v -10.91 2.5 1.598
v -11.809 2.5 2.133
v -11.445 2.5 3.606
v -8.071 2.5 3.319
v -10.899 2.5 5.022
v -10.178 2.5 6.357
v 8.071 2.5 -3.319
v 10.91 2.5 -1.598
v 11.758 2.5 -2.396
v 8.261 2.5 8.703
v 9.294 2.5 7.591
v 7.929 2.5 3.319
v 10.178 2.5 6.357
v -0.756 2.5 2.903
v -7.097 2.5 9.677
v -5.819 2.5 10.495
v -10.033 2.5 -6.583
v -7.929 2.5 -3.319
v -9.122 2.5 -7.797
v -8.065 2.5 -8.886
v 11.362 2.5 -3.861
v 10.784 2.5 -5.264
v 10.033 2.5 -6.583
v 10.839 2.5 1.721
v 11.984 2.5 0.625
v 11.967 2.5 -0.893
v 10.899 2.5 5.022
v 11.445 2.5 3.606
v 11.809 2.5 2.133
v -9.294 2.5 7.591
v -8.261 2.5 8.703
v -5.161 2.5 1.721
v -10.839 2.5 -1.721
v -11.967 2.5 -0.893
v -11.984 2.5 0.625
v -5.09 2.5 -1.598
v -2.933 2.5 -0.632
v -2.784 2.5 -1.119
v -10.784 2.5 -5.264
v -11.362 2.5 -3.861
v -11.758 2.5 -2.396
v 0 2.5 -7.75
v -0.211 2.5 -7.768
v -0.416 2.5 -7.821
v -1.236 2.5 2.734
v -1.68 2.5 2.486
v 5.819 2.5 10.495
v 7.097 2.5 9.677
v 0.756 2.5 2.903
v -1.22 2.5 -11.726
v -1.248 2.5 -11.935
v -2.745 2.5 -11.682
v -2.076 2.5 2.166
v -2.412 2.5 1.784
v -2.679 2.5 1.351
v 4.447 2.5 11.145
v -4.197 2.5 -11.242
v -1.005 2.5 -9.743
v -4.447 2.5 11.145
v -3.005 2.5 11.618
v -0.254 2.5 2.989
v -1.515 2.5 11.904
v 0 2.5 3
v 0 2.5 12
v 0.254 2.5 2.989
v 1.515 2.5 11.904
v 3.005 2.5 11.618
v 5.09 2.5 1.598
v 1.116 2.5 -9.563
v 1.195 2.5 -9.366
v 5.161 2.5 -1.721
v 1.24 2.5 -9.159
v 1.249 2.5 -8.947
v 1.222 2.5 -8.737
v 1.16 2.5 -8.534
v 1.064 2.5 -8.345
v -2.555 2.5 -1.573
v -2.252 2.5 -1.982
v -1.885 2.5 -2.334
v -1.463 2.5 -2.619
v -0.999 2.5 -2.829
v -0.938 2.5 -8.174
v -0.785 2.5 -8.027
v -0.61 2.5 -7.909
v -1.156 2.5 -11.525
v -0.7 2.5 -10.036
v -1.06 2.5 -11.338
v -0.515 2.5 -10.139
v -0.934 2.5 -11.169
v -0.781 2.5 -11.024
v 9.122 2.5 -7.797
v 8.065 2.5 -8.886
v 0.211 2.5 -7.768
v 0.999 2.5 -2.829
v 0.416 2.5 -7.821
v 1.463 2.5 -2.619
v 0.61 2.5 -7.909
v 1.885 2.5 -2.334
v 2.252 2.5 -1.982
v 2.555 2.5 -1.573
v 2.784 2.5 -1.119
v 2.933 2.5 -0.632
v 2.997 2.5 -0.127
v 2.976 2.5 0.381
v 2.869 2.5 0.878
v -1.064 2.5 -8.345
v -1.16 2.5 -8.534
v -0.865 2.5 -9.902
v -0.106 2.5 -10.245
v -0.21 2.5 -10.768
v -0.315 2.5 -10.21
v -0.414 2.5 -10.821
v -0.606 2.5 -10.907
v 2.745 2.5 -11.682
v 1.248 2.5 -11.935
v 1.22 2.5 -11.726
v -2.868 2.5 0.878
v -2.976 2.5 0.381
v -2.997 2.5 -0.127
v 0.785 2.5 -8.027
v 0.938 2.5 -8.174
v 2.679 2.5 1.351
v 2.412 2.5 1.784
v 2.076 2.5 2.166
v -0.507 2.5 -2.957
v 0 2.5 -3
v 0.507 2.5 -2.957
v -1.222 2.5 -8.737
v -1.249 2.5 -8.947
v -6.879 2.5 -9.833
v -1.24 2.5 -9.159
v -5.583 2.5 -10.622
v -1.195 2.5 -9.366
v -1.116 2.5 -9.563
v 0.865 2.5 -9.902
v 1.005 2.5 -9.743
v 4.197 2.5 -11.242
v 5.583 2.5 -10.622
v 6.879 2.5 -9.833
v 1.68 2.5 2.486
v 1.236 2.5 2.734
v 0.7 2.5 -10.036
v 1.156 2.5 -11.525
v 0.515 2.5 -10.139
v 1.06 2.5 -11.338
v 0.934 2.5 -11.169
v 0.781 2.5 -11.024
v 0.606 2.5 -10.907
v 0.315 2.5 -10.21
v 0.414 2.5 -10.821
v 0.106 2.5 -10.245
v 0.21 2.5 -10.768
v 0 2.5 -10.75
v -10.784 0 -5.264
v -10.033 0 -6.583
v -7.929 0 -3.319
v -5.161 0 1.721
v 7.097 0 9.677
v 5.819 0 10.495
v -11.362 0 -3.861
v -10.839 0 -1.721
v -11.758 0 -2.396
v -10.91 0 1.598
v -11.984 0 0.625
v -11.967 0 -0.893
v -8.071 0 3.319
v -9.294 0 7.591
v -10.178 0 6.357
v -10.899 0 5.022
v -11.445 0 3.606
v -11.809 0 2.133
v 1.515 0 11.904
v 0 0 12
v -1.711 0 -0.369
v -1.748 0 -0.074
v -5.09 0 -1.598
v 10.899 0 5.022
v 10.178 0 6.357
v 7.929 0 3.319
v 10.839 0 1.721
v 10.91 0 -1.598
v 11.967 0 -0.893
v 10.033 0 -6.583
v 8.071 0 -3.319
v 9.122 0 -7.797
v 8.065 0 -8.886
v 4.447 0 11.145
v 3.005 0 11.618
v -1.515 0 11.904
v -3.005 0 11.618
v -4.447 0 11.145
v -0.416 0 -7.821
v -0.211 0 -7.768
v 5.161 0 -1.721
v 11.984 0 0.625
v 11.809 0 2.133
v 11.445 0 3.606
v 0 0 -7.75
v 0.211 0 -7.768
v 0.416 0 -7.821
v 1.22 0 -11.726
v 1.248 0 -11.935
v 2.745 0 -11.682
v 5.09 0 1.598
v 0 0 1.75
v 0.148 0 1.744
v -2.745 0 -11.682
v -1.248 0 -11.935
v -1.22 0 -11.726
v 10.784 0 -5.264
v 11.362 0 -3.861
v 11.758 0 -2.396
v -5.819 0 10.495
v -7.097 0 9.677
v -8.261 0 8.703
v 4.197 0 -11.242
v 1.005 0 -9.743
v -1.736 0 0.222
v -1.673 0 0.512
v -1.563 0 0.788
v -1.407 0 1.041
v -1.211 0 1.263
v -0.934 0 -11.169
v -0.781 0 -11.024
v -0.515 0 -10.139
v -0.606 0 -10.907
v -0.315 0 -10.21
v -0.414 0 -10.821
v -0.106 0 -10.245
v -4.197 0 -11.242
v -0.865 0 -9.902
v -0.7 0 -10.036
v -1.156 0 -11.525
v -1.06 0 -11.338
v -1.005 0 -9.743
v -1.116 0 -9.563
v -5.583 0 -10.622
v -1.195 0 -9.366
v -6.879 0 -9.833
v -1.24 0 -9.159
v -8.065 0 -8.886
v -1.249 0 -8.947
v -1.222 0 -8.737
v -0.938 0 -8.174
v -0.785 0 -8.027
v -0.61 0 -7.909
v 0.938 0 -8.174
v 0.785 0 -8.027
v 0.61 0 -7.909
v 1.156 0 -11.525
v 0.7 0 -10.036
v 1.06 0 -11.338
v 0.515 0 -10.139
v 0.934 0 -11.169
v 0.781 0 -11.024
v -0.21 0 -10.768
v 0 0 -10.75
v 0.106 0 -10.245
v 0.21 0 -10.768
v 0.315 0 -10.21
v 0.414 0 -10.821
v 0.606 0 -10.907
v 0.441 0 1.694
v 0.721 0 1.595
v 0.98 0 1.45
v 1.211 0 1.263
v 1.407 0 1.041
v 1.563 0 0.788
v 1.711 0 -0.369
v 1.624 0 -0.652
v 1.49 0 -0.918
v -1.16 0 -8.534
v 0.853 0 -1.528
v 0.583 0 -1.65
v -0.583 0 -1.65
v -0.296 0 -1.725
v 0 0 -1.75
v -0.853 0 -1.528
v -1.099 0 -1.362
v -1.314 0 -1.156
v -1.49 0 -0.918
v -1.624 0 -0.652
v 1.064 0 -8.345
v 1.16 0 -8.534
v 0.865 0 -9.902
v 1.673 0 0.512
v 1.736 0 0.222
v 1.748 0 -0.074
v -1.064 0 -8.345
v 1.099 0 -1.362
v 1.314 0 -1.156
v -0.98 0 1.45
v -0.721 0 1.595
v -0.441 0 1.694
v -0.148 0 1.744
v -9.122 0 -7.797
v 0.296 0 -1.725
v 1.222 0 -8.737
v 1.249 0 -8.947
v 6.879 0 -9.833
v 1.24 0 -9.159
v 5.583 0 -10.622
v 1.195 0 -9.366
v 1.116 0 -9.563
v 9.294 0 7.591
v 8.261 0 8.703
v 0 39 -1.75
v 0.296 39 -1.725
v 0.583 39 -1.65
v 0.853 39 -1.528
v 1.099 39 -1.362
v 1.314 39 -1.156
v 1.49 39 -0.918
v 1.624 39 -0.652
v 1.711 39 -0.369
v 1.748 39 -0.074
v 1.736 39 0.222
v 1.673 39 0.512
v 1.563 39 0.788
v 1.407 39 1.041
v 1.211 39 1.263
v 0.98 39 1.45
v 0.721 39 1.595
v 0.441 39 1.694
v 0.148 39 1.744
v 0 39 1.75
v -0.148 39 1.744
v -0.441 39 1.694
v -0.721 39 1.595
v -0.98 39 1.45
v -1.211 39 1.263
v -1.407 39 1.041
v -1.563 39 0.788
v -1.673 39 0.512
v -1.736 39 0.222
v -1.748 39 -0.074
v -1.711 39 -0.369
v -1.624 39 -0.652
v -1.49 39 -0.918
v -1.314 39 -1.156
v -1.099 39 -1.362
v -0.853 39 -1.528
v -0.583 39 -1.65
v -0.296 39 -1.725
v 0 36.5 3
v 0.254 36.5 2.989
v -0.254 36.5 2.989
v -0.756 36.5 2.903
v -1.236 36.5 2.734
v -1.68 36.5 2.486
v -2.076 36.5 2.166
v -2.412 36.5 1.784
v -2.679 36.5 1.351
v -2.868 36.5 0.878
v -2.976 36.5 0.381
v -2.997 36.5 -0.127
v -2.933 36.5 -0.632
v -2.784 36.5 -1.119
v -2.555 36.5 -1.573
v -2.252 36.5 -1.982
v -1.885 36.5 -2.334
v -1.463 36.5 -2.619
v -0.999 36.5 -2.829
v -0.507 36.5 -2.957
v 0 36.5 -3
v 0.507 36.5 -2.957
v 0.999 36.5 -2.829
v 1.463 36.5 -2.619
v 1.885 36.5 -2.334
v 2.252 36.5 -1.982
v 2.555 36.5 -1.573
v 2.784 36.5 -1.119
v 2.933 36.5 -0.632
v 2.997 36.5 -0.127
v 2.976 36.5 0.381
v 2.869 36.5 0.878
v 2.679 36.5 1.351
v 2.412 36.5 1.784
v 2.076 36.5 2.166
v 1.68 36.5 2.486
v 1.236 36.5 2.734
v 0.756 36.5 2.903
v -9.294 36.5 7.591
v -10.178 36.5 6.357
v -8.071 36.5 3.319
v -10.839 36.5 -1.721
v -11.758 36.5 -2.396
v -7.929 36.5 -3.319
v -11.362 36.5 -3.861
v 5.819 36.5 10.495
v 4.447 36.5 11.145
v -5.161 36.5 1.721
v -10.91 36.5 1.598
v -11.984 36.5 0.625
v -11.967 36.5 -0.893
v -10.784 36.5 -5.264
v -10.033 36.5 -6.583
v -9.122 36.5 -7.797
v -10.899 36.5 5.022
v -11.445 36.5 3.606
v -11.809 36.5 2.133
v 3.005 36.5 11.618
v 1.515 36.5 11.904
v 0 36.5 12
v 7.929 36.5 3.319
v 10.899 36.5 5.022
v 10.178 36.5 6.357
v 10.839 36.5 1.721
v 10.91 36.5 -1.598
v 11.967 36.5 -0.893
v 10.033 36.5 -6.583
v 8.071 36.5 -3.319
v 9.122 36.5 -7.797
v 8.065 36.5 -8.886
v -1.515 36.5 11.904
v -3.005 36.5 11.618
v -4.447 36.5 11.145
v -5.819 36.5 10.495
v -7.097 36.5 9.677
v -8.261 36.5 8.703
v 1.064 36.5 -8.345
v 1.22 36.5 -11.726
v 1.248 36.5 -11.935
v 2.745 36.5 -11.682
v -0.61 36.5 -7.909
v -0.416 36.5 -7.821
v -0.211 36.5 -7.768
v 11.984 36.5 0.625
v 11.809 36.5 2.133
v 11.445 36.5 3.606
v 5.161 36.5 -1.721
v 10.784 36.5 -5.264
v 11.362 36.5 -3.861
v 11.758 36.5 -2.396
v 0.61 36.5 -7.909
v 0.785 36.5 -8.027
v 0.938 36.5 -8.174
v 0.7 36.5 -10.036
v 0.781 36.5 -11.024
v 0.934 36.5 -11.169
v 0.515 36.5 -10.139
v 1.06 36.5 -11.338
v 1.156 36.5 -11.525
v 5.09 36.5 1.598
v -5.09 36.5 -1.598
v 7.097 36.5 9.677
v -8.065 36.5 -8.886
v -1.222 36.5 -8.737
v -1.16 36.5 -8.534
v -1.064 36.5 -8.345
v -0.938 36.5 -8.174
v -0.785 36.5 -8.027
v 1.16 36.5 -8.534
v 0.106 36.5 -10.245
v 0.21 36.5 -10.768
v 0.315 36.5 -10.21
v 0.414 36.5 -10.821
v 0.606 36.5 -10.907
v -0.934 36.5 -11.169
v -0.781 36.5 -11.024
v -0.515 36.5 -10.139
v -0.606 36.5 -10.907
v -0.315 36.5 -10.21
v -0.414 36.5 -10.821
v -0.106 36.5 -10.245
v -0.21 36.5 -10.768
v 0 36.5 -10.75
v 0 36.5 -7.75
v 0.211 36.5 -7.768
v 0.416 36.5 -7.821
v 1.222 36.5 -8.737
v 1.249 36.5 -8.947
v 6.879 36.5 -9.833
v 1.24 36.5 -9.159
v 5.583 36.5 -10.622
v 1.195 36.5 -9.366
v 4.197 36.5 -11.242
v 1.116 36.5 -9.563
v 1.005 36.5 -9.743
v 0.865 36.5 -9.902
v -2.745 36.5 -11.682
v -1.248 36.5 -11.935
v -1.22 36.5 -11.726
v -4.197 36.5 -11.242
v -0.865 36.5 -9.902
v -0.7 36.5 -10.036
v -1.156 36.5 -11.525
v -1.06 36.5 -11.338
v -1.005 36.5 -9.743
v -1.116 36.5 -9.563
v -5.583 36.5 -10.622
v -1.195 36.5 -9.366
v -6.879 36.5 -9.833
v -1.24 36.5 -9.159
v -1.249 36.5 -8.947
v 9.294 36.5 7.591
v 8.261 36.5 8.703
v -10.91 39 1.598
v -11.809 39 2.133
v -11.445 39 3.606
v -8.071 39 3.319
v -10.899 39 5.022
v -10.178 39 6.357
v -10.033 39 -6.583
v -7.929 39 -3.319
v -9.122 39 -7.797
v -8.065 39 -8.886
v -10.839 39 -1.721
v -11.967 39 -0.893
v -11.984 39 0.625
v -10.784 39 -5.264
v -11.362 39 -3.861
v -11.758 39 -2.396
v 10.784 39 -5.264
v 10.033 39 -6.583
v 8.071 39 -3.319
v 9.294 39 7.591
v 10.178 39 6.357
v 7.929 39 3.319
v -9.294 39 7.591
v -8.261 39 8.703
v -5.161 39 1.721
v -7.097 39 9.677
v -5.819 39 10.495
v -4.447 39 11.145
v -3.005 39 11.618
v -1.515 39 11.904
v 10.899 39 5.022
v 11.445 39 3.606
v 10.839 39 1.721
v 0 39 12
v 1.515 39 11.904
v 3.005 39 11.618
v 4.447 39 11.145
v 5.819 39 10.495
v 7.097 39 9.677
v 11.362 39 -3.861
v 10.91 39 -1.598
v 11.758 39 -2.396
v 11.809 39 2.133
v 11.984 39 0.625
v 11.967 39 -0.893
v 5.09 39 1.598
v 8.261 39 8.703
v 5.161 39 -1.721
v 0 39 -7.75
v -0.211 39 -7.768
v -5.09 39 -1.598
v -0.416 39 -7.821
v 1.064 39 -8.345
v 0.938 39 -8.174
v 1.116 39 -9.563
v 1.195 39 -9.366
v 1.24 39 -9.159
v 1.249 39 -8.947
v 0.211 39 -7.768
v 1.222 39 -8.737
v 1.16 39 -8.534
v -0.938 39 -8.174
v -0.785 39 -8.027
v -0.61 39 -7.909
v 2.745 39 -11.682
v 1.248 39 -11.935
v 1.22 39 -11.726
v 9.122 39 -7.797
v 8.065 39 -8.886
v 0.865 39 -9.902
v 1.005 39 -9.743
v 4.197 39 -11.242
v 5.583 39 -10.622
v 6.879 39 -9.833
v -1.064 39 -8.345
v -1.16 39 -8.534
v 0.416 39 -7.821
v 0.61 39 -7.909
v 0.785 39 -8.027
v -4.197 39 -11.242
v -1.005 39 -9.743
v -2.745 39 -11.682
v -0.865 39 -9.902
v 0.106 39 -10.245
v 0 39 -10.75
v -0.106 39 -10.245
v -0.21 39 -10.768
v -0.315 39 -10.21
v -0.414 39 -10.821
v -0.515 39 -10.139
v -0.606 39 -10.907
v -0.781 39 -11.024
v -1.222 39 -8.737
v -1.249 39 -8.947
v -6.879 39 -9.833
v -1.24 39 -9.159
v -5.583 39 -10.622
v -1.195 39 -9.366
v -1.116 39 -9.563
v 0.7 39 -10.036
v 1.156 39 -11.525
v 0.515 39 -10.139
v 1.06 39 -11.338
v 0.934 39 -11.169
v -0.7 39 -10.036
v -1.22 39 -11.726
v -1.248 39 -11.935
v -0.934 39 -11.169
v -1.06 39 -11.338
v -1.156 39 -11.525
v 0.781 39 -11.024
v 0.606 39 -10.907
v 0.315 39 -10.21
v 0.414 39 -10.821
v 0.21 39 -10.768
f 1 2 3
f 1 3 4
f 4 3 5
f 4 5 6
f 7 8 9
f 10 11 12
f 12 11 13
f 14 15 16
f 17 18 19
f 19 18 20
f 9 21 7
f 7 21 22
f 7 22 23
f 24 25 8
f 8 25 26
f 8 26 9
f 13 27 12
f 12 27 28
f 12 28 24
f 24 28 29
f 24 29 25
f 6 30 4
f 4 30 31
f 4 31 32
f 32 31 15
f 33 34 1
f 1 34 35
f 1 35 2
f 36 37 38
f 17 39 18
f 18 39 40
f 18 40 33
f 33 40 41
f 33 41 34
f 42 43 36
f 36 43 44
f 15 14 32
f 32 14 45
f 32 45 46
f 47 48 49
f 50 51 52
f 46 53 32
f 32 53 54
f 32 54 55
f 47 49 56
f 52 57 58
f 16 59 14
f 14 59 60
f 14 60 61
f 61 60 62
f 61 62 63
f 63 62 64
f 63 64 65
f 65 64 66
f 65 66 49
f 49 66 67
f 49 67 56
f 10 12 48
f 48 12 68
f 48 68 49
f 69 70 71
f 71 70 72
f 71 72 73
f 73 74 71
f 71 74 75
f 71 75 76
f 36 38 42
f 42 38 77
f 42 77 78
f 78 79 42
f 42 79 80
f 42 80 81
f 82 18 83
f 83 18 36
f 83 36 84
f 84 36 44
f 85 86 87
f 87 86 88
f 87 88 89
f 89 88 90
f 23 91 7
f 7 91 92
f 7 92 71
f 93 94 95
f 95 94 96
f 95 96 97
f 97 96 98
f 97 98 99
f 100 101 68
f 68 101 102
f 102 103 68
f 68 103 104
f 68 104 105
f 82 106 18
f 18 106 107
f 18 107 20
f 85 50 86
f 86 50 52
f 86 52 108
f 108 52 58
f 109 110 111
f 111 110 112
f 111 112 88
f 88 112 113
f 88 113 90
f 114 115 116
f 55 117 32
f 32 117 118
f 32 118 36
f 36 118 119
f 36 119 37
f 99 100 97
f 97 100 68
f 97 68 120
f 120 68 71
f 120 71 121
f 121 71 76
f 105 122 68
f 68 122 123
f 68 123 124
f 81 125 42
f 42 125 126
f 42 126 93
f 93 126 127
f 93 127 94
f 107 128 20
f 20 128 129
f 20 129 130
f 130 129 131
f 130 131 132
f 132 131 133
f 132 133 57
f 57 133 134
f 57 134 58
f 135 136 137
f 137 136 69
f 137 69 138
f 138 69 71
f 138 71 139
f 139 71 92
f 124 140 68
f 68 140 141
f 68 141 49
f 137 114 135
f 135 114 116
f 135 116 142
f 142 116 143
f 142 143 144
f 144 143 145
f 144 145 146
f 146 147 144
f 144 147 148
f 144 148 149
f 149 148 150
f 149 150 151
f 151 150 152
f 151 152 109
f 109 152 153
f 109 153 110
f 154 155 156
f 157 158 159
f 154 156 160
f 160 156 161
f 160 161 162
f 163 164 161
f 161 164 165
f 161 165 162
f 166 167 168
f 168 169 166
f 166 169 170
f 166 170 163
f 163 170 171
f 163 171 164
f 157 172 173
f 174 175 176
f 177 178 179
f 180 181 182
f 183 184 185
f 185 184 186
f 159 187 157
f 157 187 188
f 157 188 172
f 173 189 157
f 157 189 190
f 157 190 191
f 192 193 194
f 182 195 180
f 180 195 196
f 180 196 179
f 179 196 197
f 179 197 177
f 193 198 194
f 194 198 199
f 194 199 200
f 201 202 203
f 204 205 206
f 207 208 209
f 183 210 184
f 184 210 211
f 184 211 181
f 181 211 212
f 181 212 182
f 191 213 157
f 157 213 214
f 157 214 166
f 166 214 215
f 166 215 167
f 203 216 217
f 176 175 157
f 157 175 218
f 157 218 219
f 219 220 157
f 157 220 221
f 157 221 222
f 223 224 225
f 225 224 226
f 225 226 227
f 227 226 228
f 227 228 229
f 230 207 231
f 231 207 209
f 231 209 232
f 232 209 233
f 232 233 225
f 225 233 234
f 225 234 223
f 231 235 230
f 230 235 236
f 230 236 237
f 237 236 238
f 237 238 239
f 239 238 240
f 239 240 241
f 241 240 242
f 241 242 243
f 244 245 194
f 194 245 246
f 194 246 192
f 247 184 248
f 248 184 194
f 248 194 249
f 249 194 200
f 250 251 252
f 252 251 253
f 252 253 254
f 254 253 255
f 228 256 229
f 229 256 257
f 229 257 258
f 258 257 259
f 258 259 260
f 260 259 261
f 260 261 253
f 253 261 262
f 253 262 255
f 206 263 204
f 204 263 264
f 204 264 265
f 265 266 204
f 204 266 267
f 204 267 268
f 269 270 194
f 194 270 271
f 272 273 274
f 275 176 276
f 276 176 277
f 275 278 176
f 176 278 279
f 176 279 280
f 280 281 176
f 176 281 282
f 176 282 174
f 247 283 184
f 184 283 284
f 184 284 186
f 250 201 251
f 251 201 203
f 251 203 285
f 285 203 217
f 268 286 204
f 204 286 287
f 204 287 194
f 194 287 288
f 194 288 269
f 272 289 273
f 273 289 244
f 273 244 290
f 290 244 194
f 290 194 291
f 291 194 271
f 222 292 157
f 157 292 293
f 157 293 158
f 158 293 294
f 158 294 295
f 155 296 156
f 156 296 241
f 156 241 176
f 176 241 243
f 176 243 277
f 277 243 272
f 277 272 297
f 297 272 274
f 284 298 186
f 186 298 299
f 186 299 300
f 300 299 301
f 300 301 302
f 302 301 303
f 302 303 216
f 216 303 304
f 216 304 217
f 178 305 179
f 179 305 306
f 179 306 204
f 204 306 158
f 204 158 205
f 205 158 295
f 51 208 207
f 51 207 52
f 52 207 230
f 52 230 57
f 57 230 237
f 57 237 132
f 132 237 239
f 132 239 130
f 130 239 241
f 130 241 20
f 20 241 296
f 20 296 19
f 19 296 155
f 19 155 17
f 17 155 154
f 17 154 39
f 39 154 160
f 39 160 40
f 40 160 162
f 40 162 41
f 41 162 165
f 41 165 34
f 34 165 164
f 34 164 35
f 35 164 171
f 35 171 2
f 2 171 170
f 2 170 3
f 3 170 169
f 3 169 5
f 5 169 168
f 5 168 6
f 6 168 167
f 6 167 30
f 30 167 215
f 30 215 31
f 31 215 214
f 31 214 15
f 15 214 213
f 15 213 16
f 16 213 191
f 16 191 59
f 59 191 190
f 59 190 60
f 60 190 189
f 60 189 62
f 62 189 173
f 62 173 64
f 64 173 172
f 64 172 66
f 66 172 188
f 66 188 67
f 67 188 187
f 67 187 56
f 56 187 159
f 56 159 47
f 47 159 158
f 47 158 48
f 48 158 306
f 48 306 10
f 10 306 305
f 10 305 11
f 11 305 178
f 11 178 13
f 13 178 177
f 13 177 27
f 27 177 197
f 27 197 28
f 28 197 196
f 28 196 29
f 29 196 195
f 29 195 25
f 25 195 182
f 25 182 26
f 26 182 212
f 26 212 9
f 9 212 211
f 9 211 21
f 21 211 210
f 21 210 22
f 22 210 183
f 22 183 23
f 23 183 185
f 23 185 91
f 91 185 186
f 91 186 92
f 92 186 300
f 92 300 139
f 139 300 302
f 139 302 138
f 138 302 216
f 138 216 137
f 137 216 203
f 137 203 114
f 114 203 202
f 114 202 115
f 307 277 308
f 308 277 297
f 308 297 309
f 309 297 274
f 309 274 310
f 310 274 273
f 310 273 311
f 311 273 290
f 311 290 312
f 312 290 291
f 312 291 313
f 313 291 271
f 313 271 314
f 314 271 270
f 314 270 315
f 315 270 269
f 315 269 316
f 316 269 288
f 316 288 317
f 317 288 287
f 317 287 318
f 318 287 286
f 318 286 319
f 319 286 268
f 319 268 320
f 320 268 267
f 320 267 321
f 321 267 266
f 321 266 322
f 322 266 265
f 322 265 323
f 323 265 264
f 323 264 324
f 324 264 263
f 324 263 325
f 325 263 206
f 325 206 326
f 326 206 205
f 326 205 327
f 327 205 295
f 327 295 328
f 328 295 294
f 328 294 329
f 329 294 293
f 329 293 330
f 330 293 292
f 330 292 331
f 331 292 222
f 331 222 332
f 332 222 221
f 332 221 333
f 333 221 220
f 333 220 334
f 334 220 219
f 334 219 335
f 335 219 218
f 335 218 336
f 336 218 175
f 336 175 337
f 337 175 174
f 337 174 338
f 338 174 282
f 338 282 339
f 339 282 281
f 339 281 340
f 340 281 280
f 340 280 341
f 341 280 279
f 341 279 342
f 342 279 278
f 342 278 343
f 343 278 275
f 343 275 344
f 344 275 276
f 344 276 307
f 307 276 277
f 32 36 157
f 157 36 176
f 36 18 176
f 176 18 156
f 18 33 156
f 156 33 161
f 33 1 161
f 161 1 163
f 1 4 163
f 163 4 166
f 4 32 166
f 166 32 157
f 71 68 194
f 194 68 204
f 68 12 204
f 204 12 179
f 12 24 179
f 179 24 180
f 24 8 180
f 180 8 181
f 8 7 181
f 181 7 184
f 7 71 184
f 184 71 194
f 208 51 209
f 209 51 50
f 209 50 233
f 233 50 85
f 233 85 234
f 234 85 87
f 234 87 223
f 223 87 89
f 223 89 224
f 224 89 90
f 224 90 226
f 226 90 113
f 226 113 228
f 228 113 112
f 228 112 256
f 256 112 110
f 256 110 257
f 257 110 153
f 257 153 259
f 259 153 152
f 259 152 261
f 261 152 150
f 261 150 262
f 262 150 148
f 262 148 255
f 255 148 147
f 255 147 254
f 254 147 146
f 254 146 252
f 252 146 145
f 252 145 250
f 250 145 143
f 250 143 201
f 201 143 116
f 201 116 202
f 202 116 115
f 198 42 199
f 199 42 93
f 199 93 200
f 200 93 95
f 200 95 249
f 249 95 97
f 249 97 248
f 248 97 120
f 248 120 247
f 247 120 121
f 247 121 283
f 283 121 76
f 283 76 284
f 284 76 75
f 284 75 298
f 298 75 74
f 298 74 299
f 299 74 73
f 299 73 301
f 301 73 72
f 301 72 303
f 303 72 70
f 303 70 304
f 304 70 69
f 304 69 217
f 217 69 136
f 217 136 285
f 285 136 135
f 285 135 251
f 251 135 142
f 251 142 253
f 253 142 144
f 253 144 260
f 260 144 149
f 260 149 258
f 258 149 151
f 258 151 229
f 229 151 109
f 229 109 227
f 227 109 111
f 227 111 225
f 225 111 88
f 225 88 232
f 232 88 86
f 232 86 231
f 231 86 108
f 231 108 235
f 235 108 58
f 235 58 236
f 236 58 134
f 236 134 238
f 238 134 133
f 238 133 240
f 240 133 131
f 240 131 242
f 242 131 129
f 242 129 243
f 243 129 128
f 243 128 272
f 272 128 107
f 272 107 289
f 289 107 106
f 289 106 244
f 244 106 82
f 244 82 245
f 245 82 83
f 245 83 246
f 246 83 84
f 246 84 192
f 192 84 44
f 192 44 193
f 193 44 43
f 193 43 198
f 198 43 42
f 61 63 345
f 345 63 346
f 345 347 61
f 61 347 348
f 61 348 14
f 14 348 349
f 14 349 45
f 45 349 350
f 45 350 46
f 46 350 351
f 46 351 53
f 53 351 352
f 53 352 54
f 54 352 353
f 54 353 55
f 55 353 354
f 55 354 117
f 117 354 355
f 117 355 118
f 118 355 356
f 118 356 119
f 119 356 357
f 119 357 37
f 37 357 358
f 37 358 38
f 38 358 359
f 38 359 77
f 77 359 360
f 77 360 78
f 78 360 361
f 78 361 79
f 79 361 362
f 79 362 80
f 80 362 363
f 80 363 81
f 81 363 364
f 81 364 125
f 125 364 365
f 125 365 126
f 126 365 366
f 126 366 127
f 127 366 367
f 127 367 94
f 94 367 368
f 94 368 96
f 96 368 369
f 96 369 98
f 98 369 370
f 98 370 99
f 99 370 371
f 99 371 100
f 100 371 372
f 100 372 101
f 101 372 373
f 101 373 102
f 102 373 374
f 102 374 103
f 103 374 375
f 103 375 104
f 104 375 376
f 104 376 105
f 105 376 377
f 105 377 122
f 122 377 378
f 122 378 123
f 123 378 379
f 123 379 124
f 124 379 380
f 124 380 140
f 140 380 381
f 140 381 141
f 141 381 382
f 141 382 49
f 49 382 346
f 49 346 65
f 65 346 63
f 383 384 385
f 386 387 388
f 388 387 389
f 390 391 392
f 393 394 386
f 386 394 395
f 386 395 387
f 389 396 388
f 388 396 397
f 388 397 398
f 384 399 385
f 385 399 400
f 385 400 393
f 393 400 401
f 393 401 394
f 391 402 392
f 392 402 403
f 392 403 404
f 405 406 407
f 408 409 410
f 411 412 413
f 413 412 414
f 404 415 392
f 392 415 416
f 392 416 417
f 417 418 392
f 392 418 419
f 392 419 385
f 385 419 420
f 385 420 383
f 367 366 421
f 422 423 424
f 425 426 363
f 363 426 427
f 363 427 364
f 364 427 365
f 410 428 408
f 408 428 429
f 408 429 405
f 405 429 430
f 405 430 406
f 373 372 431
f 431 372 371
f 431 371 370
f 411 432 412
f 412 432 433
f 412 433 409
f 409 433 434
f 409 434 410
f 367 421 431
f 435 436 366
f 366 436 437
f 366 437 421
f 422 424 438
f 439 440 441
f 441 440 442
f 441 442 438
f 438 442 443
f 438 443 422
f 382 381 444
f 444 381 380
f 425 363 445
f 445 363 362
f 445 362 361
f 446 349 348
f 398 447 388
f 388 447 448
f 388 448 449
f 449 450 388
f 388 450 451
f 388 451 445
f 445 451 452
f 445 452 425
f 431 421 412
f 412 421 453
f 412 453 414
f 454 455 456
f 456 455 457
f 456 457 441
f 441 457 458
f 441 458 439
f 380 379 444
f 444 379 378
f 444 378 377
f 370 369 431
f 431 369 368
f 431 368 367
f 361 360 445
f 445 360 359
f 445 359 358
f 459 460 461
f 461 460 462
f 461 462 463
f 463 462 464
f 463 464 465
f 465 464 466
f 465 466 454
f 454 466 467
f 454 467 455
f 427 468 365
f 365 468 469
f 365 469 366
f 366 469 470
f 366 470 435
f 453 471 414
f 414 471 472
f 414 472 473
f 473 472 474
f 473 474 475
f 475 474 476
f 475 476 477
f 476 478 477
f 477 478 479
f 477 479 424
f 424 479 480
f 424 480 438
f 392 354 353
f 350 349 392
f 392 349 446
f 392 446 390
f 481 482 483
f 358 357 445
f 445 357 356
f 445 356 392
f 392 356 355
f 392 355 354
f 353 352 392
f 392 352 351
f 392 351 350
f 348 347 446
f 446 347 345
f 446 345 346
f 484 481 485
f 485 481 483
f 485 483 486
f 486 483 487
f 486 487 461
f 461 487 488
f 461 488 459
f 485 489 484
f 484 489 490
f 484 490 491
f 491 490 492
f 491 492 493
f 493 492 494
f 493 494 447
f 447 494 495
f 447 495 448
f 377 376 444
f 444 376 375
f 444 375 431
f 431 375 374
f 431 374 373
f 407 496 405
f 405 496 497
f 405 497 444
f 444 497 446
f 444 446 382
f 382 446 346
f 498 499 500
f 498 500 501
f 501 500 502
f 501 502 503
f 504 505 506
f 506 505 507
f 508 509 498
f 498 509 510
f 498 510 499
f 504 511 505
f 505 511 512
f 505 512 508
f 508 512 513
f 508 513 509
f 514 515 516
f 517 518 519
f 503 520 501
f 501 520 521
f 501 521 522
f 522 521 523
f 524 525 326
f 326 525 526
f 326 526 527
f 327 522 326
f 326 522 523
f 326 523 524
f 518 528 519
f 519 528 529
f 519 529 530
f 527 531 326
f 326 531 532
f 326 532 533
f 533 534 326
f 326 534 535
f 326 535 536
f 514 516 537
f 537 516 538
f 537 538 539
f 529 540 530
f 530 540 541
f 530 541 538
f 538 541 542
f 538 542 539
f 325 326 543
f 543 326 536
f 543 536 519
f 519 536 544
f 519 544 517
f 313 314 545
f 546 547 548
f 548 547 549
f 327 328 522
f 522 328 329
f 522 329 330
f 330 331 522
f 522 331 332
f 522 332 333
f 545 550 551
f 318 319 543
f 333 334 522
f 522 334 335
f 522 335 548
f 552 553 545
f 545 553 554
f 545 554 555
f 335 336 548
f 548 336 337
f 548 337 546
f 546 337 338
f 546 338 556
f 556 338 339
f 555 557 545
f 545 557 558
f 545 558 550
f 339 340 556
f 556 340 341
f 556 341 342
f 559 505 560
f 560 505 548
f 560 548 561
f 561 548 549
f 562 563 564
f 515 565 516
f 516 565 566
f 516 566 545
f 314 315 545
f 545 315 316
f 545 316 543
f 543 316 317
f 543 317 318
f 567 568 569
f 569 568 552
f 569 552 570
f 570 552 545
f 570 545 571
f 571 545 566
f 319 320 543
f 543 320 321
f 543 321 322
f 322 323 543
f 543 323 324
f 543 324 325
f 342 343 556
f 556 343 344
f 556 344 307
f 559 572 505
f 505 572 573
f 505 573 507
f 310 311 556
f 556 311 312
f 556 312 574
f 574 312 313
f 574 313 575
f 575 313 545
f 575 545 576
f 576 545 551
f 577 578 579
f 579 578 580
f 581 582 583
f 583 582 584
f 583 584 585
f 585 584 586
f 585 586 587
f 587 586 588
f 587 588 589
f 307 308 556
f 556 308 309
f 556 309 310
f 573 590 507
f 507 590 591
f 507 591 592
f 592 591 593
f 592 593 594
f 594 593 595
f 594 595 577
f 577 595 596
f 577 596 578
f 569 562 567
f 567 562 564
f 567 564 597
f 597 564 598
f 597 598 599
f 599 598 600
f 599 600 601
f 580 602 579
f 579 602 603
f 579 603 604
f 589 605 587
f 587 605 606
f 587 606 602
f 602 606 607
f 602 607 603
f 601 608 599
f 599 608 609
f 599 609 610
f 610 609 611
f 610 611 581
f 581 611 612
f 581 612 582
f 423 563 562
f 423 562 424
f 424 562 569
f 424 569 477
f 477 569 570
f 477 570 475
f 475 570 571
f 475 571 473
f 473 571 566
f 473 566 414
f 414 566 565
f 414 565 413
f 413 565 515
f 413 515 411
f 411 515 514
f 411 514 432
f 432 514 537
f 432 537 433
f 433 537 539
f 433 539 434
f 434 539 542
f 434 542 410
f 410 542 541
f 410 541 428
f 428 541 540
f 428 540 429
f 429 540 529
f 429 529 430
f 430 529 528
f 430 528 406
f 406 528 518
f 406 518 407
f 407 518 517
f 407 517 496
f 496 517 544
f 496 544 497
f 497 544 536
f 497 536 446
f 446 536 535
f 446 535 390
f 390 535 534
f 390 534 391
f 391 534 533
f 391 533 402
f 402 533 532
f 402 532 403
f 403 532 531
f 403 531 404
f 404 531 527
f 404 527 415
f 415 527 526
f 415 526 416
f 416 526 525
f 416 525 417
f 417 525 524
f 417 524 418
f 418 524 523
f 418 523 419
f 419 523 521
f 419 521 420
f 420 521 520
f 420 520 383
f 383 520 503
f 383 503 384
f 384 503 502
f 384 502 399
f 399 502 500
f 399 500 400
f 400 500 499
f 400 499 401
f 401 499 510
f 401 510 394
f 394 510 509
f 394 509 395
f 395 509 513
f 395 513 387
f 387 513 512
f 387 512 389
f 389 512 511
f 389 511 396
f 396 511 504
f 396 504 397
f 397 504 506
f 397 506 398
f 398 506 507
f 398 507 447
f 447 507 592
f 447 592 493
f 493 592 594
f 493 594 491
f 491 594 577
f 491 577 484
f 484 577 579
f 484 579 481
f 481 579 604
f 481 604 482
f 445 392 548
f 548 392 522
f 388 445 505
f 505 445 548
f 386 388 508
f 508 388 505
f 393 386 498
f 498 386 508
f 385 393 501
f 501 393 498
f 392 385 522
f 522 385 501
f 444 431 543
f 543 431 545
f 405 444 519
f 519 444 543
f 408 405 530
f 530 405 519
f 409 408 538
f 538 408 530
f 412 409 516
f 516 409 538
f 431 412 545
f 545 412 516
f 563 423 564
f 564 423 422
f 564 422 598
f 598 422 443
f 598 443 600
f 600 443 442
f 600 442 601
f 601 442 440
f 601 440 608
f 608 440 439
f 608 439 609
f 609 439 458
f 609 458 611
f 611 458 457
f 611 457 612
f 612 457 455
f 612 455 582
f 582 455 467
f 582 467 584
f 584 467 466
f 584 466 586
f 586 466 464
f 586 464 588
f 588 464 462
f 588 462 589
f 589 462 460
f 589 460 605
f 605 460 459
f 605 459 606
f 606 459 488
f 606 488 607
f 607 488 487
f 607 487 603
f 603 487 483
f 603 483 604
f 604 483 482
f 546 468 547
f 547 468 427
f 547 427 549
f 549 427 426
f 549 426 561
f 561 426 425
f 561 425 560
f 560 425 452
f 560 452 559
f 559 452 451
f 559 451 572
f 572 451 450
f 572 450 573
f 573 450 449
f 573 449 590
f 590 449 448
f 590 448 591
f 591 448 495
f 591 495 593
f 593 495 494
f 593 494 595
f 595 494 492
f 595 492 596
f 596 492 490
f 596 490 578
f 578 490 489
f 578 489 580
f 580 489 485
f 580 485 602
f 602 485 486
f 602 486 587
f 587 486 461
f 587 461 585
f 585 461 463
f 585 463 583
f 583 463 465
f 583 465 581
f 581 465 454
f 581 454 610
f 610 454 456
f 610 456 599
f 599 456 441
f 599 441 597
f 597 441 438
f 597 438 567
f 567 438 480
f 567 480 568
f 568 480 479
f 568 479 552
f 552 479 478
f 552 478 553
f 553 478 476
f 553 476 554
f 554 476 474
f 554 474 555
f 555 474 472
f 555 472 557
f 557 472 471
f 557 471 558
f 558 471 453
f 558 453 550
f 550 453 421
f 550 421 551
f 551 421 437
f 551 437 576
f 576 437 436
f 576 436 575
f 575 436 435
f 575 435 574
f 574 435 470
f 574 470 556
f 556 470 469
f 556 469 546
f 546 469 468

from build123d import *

# Parameters (mm, degrees)
SKETCH1_R           = 12
SKETCH1_R_2         = 1.75
BOSS_EXTRUDE1_DEPTH = 2.5
CUT_EXTRUDE3_DEPTH  = 2.5
SKETCH4_R           = 1.25
CUT_EXTRUDE4_DEPTH  = 5
SKETCH2_R           = 3
SKETCH2_R_2         = 1.75
BOSS_EXTRUDE2_DEPTH = 17


with BuildPart() as part:
    # Sketch1 → Boss-Extrude1 (new body)
    with BuildSketch(Plane(origin=(0, 0, 0), x_dir=(1, 0, 0), z_dir=(0, 1, 0))):
        Circle(SKETCH1_R)
        Circle(SKETCH1_R_2, mode=Mode.SUBTRACT)
    extrude(amount=BOSS_EXTRUDE1_DEPTH)

    # Sketch3 → Cut-Extrude3 (cut)
    with BuildSketch(Plane.XZ):
        Polygon((-5.161329605, 1.721273866), (-8.071331697, 3.318997608), (-10.910002092, 1.597723742), (-10.838670395, -1.721273866), (-7.928668303, -3.318997608), (-5.089997908, -1.597723742), align=None)
        Polygon((5.161329605, -1.721273866), (8.071331697, -3.318997608), (10.910002092, -1.597723742), (10.838670395, 1.721273866), (7.928668303, 3.318997608), (5.089997908, 1.597723742), align=None)
    extrude(amount=-CUT_EXTRUDE3_DEPTH, mode=Mode.SUBTRACT)

    # Sketch4 → Cut-Extrude4 (cut)
    with BuildSketch(Plane(origin=(0, 2.5, 0), x_dir=(1, 0, 0), z_dir=(0, 1, 0))):
        with Locations((0, 9)):
            Circle(SKETCH4_R)
        with Locations((0, 12)):
            Circle(SKETCH4_R)
    extrude(amount=-CUT_EXTRUDE4_DEPTH, mode=Mode.SUBTRACT)

    # Sketch2 → Boss-Extrude2 (add)
    with BuildSketch(Plane(origin=(0, 2.5, 0), x_dir=(1, 0, 0), z_dir=(0, 1, 0))):
        Circle(SKETCH2_R)
        Circle(SKETCH2_R_2, mode=Mode.SUBTRACT)
    extrude(amount=BOSS_EXTRUDE2_DEPTH)

    # Mirror7: part across plane


with BuildPart() as part_1:
    add(part.part)
    add(part.part.mirror(Plane.ZX.offset(19.5)))


solid = part_1.part
